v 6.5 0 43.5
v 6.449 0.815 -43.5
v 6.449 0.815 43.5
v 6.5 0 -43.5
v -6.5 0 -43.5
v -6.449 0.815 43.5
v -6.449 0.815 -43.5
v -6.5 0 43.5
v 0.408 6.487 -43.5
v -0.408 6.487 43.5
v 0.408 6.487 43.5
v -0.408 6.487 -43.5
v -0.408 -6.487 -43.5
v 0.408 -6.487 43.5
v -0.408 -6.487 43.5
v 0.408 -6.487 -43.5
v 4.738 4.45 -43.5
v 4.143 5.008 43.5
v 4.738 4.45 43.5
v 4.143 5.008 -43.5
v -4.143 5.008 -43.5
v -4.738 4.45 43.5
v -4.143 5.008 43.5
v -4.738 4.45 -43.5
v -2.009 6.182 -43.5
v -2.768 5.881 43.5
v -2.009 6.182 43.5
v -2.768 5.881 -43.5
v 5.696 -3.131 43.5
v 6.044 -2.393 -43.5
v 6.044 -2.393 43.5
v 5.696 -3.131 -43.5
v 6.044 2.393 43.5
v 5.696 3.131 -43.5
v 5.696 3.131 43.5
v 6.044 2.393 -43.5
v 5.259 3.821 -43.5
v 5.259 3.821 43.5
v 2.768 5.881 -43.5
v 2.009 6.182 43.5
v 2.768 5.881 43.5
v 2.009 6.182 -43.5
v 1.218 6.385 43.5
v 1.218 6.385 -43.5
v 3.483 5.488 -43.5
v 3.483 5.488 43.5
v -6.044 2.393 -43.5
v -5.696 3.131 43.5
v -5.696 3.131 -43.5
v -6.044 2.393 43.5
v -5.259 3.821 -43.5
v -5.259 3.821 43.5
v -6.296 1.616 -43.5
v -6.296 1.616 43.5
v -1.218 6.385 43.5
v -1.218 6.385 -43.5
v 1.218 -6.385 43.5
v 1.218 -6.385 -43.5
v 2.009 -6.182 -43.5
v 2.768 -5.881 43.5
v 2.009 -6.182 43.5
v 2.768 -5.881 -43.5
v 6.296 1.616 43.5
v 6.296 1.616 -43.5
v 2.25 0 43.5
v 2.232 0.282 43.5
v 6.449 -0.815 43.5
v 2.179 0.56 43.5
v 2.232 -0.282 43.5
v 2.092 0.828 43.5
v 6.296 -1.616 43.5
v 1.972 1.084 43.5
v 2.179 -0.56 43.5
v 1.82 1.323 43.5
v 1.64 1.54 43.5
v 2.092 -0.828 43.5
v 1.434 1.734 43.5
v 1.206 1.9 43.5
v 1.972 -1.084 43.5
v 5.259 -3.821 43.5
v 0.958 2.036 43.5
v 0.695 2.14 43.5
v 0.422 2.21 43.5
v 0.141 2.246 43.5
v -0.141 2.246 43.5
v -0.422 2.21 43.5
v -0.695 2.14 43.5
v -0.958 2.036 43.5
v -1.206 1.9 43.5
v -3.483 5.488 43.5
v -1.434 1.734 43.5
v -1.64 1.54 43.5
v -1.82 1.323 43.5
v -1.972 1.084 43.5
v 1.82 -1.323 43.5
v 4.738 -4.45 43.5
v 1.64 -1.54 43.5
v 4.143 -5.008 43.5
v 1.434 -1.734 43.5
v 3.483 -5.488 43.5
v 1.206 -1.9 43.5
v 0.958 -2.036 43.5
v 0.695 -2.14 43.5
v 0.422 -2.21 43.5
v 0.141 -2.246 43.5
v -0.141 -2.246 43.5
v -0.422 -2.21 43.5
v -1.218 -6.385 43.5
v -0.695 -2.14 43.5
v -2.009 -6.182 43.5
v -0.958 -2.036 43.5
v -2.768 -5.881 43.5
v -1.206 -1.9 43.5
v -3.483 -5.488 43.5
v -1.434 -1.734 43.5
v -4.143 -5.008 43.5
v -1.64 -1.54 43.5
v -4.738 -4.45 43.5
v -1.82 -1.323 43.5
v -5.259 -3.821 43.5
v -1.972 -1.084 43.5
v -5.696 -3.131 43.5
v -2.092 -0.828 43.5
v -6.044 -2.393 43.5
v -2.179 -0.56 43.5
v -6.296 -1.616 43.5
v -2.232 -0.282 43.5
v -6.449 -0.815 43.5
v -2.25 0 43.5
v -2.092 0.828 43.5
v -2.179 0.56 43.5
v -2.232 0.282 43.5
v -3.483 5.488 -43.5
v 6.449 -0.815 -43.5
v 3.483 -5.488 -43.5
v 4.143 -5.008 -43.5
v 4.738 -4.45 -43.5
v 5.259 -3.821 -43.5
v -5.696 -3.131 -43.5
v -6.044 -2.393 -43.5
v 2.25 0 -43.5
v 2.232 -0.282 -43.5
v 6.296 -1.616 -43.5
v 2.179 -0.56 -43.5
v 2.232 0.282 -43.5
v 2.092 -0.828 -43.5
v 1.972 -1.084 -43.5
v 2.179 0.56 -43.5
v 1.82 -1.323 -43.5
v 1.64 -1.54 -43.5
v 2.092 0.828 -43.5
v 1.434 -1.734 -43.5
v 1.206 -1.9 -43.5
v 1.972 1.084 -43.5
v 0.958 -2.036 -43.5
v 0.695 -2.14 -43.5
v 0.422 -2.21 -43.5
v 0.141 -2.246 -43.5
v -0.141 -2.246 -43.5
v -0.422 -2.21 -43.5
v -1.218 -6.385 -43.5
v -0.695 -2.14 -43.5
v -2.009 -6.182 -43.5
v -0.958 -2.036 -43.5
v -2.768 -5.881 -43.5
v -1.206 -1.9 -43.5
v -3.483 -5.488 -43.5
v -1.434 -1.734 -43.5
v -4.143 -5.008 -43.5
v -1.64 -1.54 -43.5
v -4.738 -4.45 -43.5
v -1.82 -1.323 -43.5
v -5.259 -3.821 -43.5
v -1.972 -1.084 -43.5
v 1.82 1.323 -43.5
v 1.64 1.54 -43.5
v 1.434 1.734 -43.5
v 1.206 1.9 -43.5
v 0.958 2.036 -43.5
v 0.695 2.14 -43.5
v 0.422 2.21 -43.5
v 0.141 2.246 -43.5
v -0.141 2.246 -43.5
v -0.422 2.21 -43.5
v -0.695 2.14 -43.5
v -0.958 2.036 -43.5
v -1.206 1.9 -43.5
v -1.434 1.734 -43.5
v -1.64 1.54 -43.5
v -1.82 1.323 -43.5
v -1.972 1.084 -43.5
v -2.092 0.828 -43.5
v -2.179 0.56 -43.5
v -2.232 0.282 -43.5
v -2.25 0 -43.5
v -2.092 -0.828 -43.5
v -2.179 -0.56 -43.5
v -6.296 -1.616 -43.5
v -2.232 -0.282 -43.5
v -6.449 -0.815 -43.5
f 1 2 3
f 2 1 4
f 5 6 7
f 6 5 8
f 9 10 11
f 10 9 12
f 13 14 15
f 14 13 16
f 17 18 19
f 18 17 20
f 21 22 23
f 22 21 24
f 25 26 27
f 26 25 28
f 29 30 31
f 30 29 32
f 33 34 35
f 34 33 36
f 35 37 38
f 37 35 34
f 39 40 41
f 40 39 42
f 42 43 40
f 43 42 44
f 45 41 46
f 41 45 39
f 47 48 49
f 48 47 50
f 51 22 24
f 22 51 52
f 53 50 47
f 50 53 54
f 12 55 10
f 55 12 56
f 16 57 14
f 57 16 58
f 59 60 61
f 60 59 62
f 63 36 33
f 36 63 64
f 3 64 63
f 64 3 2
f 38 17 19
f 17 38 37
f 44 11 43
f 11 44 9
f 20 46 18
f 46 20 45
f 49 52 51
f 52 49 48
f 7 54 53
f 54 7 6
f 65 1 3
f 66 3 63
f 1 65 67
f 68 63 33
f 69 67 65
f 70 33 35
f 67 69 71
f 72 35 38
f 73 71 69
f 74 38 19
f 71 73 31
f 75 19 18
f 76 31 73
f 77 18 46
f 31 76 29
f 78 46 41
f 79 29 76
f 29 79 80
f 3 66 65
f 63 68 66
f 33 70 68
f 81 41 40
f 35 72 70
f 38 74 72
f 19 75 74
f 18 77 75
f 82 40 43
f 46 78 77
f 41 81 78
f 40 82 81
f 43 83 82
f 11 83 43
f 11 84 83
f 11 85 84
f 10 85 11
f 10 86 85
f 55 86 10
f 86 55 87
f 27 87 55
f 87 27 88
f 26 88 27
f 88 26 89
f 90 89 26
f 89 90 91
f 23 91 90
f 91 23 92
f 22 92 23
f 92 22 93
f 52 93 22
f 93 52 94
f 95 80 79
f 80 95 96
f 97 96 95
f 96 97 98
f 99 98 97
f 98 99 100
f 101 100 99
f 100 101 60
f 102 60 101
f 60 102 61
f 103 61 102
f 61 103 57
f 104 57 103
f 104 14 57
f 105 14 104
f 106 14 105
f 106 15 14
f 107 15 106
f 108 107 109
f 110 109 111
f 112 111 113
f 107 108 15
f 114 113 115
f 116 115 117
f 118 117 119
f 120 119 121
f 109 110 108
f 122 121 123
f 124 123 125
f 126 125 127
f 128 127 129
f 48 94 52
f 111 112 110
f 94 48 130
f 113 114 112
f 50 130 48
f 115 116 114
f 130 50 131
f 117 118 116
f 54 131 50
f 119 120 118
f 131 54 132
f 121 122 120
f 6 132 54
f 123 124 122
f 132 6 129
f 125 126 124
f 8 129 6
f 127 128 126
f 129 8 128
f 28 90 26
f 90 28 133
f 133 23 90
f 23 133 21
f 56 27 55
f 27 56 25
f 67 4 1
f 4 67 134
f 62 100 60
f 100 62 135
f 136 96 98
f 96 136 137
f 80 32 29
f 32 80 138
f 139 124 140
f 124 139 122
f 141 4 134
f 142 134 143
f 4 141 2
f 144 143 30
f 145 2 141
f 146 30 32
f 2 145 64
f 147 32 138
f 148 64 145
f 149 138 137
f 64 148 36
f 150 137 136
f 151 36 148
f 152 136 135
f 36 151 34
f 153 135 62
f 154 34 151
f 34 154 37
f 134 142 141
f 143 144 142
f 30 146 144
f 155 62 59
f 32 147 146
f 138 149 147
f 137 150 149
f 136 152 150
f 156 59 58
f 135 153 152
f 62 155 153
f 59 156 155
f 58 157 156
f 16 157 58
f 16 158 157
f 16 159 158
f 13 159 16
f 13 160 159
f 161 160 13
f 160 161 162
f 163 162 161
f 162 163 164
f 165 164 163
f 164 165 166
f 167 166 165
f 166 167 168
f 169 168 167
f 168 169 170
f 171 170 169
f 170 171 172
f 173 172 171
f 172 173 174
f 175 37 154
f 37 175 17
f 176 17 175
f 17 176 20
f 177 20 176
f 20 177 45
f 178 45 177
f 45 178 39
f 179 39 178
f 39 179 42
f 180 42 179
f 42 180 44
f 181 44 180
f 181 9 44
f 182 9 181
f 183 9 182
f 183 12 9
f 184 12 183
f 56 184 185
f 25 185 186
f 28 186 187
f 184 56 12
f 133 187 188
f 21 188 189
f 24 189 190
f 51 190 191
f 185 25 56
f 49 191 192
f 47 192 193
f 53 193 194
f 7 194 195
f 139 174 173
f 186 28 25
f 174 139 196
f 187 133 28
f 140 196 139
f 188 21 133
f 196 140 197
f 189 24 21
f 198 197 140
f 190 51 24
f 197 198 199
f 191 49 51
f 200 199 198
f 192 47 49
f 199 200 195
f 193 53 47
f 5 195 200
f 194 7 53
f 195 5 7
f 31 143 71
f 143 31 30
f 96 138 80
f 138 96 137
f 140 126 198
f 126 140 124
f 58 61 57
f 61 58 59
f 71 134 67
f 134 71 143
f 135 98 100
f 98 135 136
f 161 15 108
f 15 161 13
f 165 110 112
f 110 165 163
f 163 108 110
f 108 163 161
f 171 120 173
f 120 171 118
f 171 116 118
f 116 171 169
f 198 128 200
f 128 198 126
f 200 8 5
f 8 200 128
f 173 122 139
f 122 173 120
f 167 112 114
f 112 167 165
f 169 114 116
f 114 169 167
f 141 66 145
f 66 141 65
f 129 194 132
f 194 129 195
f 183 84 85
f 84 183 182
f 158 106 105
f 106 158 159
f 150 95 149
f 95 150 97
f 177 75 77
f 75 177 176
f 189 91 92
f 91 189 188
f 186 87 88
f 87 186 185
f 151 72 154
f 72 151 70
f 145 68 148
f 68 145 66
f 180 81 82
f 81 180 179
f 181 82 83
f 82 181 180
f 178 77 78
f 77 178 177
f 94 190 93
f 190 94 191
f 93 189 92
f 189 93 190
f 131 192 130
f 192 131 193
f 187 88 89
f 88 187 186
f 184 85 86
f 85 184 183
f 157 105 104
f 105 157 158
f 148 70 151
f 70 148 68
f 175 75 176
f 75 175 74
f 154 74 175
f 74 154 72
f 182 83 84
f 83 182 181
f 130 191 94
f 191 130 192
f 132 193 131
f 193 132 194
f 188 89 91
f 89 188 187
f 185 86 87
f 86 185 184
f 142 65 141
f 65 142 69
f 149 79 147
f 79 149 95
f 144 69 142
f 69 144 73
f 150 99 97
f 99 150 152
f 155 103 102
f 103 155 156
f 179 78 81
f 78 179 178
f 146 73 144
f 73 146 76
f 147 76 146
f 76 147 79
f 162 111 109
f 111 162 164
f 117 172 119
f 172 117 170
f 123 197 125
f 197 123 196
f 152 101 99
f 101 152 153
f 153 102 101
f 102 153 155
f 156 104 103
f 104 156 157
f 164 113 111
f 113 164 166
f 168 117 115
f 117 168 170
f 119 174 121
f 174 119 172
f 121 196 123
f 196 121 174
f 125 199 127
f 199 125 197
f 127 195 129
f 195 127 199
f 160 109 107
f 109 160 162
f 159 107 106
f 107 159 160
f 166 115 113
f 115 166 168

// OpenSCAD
$fn = 50;


difference() {
	union() {
		translate(v = [0, 0, -43.5000000000]) {
			cylinder(h = 87, r = 6.5000000000);
		}
	}
	union() {
		translate(v = [0, 0, -100.0000000000]) {
			cylinder(h = 200, r = 2.2500000000);
		}
	}
}
